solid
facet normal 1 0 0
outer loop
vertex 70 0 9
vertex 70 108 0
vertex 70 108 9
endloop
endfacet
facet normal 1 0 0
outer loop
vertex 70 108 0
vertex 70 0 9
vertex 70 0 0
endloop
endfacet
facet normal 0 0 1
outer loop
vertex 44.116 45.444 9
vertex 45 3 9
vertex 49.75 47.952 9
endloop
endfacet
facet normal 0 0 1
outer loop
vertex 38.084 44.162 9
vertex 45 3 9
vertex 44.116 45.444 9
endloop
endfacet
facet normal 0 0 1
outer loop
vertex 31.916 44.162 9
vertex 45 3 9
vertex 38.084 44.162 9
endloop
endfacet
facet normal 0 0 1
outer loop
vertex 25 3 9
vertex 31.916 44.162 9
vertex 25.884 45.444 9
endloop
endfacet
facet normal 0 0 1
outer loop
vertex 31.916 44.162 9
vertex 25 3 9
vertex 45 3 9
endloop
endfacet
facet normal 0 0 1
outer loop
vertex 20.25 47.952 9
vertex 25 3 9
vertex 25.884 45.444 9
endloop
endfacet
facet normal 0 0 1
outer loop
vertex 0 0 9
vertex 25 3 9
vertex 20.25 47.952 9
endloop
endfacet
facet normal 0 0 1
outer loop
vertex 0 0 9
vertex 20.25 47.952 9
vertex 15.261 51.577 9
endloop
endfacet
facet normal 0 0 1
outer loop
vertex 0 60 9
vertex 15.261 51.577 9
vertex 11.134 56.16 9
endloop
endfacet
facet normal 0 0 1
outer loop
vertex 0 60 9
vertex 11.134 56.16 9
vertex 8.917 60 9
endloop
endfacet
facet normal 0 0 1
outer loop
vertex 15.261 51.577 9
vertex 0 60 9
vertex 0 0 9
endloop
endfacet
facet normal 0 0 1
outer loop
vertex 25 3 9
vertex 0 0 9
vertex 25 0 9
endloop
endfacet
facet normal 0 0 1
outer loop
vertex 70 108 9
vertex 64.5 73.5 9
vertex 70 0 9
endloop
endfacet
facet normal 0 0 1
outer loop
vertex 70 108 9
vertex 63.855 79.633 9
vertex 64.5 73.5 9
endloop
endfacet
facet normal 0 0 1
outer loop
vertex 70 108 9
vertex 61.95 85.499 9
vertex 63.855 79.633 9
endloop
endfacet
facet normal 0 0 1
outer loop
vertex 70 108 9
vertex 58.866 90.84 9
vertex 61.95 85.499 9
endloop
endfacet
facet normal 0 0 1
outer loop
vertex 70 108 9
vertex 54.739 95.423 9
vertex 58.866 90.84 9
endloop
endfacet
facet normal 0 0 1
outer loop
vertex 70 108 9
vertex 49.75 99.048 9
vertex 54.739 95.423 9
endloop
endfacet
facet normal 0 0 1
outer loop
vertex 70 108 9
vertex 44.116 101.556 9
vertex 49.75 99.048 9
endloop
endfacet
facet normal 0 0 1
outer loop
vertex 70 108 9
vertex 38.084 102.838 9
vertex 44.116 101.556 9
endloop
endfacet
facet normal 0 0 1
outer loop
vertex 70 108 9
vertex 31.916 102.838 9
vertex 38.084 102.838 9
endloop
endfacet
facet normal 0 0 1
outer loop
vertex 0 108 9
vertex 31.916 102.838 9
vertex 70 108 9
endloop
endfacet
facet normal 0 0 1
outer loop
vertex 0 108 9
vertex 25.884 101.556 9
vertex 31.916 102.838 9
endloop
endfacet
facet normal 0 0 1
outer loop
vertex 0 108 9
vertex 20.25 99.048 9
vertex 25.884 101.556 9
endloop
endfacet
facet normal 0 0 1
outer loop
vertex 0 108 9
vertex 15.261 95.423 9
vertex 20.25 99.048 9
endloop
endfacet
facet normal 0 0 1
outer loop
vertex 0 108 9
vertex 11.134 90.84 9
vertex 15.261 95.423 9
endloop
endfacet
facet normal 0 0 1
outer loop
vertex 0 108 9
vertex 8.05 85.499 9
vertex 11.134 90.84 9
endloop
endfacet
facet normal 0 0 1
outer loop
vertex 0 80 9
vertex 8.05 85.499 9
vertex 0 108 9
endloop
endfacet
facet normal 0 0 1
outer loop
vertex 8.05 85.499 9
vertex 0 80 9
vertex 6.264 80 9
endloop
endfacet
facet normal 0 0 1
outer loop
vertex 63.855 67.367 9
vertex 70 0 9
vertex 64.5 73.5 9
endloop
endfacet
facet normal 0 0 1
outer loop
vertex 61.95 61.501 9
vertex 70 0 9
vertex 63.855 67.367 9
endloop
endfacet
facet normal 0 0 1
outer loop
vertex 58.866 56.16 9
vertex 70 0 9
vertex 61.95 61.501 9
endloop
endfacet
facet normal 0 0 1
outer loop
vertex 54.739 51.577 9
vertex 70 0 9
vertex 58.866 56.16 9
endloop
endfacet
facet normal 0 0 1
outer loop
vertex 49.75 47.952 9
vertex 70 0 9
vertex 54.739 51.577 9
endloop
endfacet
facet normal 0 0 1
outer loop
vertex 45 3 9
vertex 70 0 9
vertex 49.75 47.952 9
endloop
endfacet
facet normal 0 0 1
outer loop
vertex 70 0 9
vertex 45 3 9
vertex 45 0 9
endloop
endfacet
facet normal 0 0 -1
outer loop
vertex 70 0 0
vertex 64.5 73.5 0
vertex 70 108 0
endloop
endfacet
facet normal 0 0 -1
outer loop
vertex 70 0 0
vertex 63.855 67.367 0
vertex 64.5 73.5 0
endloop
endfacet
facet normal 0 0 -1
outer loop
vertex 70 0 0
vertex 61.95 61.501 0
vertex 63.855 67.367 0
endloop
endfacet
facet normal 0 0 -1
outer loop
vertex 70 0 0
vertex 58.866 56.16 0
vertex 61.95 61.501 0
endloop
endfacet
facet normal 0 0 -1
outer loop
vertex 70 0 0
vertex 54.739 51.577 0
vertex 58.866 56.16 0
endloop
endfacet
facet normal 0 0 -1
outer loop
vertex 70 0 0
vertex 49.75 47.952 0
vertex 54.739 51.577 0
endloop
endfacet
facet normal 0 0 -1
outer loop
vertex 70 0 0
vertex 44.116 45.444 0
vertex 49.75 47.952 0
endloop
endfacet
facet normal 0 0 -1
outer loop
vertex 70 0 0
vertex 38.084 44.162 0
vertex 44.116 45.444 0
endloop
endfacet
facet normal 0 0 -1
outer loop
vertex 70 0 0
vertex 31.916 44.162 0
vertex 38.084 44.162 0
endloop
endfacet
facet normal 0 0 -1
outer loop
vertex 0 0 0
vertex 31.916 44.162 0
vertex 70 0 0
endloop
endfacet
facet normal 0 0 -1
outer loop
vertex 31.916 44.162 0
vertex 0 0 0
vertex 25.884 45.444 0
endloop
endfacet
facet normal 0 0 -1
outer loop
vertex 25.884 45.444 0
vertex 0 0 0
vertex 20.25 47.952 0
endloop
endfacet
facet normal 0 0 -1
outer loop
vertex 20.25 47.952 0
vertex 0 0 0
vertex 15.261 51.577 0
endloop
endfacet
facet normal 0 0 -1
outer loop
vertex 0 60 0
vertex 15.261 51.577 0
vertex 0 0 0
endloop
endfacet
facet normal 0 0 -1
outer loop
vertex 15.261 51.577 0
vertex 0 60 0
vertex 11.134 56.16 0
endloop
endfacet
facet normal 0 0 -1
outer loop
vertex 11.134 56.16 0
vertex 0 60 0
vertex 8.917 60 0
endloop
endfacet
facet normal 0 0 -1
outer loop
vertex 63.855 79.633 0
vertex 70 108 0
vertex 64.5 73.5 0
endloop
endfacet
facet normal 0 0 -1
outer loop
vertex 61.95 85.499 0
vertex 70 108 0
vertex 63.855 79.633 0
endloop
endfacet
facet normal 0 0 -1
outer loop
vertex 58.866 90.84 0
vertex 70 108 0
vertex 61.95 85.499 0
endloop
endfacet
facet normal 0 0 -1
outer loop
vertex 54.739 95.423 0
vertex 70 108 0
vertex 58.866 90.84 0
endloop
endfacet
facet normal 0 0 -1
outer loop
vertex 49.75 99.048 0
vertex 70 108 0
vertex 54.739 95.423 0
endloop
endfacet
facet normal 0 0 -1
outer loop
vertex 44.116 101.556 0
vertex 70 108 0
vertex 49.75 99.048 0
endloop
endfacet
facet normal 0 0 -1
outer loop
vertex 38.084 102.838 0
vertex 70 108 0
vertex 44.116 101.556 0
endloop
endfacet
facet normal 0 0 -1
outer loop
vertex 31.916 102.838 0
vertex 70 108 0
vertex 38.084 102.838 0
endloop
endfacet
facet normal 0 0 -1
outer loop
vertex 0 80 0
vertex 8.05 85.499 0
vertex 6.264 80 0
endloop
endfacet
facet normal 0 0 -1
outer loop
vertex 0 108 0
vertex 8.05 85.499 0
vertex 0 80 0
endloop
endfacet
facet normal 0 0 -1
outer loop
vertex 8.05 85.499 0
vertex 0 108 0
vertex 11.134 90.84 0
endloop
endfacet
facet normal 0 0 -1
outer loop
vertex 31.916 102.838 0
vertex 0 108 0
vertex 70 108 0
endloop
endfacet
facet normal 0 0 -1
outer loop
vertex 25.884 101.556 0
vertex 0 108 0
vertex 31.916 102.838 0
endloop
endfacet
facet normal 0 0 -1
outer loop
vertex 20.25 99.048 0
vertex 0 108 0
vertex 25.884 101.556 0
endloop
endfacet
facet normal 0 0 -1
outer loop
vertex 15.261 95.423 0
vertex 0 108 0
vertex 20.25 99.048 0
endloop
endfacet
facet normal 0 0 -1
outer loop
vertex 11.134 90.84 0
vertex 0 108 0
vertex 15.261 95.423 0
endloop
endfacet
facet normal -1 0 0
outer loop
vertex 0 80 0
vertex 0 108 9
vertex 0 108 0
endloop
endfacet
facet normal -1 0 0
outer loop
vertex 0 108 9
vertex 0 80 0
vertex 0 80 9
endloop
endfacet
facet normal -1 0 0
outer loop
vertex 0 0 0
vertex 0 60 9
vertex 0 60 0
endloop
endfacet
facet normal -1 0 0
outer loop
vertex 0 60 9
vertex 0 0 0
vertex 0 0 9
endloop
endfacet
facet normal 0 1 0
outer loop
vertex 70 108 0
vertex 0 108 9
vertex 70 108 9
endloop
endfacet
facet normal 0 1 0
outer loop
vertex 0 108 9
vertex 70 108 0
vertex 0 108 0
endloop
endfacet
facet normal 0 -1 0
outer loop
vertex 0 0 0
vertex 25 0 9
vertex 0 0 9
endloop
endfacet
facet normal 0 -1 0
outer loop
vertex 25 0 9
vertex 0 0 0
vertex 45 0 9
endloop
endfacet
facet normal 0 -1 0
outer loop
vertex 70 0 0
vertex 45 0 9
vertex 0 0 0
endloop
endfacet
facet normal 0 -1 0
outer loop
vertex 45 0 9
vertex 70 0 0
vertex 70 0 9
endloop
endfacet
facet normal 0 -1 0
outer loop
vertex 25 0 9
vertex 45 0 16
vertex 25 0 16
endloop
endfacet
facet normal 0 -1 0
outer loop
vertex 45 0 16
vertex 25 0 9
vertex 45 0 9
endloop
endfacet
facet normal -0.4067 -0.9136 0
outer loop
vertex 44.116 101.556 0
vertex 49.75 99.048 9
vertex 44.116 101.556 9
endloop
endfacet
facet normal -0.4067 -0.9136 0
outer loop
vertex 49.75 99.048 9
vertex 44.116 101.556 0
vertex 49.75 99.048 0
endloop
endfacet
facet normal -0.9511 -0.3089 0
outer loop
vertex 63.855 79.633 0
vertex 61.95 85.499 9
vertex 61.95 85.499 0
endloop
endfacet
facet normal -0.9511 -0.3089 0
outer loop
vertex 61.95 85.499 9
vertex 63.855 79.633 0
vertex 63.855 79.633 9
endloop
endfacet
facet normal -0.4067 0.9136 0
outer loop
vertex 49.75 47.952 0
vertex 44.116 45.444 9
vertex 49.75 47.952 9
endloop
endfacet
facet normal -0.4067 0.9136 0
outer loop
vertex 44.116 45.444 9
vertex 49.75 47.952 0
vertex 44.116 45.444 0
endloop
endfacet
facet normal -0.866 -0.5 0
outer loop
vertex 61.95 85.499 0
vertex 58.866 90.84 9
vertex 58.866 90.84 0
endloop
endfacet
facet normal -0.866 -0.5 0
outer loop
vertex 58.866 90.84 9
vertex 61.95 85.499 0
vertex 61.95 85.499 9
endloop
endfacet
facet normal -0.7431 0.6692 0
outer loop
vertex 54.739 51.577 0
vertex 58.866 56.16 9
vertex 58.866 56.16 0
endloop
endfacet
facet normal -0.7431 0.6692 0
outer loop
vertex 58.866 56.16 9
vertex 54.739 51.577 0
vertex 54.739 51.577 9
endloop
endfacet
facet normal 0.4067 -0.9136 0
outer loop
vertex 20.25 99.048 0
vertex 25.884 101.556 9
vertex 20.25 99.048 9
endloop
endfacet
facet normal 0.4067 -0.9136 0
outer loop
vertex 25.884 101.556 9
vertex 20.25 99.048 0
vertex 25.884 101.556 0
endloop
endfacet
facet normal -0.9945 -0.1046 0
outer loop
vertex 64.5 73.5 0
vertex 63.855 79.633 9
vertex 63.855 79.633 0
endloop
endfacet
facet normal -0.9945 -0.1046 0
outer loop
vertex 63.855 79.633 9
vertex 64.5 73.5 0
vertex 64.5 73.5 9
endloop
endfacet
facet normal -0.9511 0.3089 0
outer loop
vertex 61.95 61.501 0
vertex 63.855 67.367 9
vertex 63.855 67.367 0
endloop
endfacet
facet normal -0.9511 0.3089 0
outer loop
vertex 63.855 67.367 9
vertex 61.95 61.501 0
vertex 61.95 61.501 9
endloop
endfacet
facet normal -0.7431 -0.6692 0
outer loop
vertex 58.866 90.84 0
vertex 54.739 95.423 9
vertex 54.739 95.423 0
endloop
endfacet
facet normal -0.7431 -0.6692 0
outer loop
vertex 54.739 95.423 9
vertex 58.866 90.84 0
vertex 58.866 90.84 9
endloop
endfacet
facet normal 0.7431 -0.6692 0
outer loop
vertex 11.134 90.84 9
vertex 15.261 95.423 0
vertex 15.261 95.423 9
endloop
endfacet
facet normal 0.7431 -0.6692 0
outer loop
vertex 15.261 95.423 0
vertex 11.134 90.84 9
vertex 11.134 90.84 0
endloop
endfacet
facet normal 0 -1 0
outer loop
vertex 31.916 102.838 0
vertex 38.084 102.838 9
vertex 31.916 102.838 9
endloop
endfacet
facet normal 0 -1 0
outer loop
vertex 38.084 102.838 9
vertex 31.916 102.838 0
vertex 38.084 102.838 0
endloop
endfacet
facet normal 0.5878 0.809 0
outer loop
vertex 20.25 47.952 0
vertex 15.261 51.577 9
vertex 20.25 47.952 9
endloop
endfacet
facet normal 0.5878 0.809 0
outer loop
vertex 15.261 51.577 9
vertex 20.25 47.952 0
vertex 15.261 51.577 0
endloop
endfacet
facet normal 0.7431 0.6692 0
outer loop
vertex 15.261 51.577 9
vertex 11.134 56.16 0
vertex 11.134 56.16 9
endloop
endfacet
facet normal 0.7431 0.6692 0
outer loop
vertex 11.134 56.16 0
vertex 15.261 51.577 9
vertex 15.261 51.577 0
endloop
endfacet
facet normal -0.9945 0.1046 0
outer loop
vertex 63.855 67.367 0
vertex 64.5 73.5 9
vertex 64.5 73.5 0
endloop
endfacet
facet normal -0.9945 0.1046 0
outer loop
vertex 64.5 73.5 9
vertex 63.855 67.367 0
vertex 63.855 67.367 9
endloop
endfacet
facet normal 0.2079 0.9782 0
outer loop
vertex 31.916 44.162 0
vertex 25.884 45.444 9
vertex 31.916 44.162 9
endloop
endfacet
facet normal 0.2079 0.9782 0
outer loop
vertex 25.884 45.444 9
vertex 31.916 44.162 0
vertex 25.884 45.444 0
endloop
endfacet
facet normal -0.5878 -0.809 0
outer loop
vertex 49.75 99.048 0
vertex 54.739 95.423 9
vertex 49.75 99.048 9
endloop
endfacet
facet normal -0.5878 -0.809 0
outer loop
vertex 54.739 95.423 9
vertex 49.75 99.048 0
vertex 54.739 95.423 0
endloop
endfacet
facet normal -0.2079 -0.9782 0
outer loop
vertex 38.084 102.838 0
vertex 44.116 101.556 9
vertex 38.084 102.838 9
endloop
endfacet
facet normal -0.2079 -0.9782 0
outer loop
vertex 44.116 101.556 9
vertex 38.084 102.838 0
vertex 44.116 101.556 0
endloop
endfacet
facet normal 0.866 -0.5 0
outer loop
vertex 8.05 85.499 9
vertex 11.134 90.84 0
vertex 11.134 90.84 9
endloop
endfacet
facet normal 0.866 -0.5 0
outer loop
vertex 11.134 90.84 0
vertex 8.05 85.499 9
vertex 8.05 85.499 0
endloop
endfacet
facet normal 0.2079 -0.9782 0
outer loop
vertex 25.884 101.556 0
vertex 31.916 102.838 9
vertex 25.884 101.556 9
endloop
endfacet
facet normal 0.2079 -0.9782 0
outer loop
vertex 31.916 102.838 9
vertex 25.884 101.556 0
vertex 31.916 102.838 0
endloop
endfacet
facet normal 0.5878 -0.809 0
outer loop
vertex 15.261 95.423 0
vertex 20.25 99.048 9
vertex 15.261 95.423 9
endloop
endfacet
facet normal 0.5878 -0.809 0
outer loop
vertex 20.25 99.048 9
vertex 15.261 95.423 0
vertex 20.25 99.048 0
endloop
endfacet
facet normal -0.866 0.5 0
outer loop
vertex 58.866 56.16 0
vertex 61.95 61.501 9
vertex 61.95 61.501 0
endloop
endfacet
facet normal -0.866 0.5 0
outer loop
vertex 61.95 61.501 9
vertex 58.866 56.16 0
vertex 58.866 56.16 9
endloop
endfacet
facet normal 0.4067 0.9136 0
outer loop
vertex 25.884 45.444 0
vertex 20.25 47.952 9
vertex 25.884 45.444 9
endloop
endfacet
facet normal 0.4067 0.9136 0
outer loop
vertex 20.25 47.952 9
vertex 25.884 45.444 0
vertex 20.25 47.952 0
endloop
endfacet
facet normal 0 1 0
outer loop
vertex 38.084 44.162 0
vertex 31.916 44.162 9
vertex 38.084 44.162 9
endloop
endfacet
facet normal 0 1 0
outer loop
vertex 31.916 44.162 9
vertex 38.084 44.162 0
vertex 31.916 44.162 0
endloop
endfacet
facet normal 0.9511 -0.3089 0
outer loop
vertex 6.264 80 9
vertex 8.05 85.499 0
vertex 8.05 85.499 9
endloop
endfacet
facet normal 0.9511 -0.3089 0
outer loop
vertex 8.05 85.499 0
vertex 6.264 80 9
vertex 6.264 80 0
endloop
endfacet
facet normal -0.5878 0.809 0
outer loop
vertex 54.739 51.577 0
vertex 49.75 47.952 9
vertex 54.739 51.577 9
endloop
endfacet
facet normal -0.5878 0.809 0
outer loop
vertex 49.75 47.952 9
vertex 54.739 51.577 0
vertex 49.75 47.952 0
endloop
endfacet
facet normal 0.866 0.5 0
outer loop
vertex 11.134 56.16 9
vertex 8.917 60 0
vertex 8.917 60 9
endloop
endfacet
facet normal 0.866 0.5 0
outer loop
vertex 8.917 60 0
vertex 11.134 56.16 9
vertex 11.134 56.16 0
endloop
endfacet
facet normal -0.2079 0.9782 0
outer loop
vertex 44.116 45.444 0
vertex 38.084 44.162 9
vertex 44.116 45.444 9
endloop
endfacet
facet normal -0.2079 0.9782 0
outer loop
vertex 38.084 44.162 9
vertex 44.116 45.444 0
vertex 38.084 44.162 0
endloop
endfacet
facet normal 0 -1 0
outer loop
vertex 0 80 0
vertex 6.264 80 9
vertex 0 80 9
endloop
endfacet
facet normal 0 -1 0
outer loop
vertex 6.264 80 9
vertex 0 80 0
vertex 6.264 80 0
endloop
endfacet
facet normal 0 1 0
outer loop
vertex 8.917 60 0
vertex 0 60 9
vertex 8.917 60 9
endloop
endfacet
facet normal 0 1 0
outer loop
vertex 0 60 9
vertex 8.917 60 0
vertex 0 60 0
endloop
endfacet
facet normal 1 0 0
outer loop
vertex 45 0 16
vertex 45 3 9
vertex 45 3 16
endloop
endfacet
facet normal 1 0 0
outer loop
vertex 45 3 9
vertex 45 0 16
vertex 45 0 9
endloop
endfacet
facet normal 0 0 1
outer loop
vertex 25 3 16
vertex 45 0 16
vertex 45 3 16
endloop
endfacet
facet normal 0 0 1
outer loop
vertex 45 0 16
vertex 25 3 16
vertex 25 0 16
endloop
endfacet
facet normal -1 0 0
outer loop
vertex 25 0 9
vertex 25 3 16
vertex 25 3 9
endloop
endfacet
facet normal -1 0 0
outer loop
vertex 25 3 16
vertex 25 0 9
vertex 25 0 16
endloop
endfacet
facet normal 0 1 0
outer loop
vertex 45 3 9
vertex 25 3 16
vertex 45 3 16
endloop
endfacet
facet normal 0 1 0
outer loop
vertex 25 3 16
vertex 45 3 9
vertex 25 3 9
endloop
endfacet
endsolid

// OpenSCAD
difference() {
    cube([70,59+44+5,9]);
    translate([70/2,(59+44)-(59/2),0]) cylinder(19,d=59);
    #translate([0,60,0]) cube([20,20,9]);
}
translate([25,0,0]) cube([20,3,9+7]);
